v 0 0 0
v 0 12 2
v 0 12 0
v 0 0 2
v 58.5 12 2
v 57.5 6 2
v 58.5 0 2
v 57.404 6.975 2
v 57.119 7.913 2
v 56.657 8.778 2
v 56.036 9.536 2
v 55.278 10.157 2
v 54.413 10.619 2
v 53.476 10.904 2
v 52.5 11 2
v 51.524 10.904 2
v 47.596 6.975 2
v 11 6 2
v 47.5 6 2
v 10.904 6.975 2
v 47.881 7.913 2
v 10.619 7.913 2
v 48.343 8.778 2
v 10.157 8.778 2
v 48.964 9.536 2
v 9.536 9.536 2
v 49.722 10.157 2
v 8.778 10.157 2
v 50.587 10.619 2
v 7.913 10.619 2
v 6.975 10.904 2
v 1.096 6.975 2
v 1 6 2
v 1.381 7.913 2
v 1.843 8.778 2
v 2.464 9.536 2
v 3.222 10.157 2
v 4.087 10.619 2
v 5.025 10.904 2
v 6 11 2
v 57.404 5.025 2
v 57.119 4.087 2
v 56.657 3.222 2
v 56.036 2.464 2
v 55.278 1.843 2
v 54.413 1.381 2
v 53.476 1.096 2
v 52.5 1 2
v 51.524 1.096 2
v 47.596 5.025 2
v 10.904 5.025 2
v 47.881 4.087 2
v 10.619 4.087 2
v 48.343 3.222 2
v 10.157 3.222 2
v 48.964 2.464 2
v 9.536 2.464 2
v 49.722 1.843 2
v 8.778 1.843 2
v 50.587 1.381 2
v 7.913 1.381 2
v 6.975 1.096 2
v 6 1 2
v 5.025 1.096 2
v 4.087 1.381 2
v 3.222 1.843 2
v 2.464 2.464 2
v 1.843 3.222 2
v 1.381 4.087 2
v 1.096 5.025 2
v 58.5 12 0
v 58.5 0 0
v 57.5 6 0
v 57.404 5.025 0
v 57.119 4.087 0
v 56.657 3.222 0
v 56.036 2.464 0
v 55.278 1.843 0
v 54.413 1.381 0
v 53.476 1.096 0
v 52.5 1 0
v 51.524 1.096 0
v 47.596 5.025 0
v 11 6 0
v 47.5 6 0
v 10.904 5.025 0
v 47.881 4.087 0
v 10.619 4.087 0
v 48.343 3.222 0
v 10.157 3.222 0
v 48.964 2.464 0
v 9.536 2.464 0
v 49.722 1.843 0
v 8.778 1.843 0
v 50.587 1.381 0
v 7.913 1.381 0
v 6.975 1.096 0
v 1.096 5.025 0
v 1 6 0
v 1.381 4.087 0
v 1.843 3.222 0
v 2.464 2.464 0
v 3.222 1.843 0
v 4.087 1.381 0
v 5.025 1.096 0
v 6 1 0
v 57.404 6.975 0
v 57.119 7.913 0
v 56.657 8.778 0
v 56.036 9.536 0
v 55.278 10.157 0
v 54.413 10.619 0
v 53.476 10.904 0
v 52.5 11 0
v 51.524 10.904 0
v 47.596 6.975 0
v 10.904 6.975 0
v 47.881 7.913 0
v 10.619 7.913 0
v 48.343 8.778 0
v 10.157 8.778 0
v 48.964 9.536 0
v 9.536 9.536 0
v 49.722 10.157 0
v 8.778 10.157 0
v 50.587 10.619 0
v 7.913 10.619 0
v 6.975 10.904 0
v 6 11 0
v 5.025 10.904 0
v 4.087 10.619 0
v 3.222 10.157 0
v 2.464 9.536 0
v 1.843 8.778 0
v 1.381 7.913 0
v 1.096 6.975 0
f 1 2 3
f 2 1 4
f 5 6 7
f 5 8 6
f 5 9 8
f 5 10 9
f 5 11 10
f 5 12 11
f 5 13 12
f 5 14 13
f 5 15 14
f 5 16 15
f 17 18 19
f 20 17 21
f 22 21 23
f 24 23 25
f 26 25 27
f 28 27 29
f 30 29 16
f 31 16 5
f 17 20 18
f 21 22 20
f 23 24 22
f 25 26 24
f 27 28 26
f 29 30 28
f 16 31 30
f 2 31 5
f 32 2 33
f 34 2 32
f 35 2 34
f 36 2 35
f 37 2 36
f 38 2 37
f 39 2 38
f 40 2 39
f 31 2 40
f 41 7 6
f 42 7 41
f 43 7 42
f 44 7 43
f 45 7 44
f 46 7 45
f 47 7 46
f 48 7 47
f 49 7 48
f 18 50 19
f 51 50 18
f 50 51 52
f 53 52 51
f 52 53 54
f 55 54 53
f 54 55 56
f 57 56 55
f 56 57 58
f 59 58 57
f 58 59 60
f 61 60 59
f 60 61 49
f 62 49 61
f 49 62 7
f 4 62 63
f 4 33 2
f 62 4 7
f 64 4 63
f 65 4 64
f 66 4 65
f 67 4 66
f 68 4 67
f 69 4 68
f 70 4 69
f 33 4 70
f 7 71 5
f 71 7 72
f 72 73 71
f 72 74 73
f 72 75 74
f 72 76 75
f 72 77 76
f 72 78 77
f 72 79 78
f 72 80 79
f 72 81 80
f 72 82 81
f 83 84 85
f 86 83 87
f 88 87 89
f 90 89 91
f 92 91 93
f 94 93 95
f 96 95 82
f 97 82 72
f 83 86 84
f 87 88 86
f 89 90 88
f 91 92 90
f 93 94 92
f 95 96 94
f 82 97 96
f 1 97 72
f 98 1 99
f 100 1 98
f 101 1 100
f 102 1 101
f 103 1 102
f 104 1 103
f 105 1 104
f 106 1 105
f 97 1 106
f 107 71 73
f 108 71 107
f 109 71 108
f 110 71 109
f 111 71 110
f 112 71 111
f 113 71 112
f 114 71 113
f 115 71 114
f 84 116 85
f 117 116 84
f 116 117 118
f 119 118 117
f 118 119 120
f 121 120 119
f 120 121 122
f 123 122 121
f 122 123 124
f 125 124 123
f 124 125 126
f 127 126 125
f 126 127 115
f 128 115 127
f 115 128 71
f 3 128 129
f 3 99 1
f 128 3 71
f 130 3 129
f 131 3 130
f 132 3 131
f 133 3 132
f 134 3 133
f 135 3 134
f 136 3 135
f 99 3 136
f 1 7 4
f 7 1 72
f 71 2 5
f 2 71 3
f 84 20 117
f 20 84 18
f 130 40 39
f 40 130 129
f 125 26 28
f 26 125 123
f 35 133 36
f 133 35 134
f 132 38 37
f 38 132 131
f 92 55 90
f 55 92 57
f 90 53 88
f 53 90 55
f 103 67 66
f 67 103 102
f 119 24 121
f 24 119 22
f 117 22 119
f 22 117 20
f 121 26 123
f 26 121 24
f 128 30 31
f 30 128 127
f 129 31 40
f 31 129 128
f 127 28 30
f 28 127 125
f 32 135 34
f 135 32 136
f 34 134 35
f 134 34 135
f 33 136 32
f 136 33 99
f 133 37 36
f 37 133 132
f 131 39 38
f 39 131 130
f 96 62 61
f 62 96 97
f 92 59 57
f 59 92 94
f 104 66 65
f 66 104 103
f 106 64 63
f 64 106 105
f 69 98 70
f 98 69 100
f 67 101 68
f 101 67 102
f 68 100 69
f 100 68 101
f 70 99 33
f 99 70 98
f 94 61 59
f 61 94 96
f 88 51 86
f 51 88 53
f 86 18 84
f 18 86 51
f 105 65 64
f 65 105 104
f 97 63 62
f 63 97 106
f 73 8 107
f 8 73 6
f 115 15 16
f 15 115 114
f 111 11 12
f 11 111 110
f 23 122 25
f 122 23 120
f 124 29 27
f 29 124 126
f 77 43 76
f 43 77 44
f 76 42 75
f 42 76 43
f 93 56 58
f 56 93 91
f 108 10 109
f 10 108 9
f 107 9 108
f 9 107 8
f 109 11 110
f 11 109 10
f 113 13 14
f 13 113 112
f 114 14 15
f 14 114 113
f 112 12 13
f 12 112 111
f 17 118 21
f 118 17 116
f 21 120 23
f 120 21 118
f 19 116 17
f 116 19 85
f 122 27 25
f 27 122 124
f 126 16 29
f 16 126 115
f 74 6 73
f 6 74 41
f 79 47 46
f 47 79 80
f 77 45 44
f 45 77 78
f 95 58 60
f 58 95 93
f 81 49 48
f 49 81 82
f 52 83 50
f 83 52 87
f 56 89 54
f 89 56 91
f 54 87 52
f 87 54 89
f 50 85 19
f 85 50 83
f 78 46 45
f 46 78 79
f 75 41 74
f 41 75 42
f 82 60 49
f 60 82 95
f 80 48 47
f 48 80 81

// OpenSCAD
// http://www.openscad.org/cheatsheet/index.html?version=2015.03 


// 56.50mm apart ---> ()  () <----
// 35 apart () <--> ()
// 10mm dia ---> () <---
$fn = 32;


module connector( radius, separation, height, perimeter ) {
  difference() {
  cube([perimeter+separation,(radius*2)+perimeter,height]);
  #translate([.5*perimeter+radius,0.5*perimeter+radius,0])      cylinder(h = height, r = radius, center=false);
  #translate([separation-radius+(0.5*perimeter),radius+(0.5*perimeter),0]) cylinder(h = height, r = radius, center=false);
  }
}

module main() {
  connector(perimeter=2, radius = 5, separation = 56.50, height = 2);
}

main();
